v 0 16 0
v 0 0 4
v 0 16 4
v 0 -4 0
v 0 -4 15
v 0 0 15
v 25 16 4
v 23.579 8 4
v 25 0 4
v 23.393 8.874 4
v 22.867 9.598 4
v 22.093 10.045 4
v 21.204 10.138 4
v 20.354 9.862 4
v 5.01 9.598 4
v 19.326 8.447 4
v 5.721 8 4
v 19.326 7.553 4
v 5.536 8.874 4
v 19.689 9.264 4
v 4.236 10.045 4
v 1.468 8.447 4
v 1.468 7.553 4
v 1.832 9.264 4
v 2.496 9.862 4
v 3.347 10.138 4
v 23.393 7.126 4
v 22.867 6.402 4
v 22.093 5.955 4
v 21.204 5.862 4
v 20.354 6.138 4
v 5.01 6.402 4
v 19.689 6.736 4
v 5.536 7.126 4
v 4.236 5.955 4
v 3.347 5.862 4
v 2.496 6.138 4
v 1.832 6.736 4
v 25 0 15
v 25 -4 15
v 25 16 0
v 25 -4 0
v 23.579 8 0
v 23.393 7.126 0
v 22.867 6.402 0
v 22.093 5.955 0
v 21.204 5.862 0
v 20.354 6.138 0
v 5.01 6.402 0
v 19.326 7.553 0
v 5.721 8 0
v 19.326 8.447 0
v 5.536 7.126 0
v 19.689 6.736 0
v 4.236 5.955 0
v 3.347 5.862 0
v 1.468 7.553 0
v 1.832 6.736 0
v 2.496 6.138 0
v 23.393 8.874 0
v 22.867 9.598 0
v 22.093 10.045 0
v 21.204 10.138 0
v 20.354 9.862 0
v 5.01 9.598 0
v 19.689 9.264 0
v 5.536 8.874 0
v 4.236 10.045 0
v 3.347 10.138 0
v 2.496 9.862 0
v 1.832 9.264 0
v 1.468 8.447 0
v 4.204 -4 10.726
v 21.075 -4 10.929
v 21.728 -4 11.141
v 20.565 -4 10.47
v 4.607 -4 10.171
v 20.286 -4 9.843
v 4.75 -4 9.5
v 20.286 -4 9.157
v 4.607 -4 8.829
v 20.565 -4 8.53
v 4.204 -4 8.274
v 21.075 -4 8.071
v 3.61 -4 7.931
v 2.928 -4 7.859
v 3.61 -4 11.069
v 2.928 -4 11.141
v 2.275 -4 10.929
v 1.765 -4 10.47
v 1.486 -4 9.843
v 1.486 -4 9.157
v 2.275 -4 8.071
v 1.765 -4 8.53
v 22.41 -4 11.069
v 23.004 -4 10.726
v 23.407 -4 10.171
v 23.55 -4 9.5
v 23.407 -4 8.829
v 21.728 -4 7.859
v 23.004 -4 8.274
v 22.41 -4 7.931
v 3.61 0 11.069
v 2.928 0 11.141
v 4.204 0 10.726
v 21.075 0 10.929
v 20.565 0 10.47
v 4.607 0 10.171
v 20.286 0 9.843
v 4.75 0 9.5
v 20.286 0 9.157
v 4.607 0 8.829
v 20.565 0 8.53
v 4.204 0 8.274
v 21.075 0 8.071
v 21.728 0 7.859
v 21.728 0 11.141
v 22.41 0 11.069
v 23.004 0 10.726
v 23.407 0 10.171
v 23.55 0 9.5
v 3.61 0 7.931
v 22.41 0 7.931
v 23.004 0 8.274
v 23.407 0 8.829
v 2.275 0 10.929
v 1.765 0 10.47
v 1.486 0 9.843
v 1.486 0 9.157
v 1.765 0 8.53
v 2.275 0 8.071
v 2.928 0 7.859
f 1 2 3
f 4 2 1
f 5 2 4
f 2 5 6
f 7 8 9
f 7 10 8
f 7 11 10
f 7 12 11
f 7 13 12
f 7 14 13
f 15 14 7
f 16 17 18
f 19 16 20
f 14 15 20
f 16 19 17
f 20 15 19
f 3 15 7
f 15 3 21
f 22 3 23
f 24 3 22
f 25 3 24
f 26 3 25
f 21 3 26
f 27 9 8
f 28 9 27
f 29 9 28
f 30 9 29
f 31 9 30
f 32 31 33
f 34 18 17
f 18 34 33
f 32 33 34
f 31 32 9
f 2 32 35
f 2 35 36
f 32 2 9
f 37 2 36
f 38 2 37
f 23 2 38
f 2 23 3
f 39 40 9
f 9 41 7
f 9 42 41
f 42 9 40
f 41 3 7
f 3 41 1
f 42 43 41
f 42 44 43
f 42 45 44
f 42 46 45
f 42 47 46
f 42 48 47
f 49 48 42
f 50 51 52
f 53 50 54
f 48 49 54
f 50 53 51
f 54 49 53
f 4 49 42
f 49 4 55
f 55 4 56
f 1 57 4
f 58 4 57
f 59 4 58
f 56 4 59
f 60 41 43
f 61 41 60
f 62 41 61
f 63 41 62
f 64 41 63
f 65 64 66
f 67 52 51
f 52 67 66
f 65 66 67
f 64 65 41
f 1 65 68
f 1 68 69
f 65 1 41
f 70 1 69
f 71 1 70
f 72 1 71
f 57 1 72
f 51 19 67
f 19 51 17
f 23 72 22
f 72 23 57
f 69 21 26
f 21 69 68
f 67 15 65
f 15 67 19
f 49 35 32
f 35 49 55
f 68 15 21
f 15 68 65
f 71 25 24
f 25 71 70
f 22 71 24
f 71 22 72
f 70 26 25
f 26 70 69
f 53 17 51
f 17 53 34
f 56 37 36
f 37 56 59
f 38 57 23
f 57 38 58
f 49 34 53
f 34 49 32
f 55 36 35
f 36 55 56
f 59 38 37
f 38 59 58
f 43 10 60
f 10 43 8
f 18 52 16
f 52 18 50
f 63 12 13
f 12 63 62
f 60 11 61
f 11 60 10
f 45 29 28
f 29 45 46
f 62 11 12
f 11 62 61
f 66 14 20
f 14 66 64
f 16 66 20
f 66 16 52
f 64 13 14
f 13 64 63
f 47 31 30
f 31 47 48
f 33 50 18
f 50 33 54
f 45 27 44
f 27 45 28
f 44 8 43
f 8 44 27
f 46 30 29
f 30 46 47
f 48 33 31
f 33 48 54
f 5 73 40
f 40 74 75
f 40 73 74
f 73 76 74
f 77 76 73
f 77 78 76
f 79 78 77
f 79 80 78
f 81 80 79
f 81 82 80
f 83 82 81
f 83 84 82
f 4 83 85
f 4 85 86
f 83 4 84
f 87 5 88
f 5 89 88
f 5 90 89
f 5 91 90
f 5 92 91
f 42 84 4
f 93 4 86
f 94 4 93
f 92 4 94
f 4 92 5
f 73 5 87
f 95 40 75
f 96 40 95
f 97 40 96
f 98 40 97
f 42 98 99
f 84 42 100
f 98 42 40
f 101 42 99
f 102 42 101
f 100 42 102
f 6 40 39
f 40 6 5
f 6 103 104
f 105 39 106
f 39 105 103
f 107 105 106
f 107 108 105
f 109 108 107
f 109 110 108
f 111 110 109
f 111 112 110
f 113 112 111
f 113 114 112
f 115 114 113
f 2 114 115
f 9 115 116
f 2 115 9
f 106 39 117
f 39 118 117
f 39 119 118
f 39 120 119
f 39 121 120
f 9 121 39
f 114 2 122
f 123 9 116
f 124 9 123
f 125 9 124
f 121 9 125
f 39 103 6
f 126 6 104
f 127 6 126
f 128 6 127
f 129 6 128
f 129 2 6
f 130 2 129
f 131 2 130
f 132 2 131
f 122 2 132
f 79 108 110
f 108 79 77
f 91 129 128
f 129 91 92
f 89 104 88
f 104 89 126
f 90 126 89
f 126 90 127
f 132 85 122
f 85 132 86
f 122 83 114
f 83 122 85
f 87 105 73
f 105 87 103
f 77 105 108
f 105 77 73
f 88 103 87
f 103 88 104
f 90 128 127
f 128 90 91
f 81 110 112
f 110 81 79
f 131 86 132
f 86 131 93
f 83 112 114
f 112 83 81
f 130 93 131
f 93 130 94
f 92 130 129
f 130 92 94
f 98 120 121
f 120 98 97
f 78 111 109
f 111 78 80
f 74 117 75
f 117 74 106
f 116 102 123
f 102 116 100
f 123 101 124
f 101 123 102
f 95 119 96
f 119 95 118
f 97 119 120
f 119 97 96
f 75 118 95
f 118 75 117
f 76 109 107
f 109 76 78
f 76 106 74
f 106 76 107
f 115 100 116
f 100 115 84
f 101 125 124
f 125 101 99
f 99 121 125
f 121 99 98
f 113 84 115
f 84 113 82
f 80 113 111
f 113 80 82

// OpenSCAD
WallThickness = 4;

BaseWidth = 25;
BaseDepth = 16;
BaseHoleDiameter = 4.3;

SensorToBaseHeight = 13;

SensorHoleDistance = 18.8;
SensorHoleDiameter = 3.3;
SensorWidth = 25;
SensorDepth = 11;


translate([0, -WallThickness, 0])
cube(size=[SensorWidth, WallThickness, WallThickness], center=false);



difference() {
    cube(size=[BaseWidth, BaseDepth, WallThickness], center=false);
    translate([BaseWidth/7, BaseDepth/2, 0])
    cylinder(h=WallThickness, d=BaseHoleDiameter, center=false, $fn=15);
    translate([BaseWidth/7*6, BaseDepth/2, 0])
    cylinder(h=WallThickness, d=BaseHoleDiameter, center=false, $fn=15);
    
}

translate([0, 0, WallThickness])
rotate([90, 0, 0])
difference() {
    cube(size=[SensorWidth, SensorDepth, WallThickness], center=false);
    translate([(SensorWidth-SensorHoleDistance)/2, SensorDepth/2, 0])
    cylinder(h=WallThickness, d=SensorHoleDiameter, center=false, $fn=15);
    translate([(SensorWidth-SensorHoleDistance)/2+SensorHoleDistance, SensorDepth/2, 0])
    cylinder(h=WallThickness, d=SensorHoleDiameter, center=false, $fn=15);
}
